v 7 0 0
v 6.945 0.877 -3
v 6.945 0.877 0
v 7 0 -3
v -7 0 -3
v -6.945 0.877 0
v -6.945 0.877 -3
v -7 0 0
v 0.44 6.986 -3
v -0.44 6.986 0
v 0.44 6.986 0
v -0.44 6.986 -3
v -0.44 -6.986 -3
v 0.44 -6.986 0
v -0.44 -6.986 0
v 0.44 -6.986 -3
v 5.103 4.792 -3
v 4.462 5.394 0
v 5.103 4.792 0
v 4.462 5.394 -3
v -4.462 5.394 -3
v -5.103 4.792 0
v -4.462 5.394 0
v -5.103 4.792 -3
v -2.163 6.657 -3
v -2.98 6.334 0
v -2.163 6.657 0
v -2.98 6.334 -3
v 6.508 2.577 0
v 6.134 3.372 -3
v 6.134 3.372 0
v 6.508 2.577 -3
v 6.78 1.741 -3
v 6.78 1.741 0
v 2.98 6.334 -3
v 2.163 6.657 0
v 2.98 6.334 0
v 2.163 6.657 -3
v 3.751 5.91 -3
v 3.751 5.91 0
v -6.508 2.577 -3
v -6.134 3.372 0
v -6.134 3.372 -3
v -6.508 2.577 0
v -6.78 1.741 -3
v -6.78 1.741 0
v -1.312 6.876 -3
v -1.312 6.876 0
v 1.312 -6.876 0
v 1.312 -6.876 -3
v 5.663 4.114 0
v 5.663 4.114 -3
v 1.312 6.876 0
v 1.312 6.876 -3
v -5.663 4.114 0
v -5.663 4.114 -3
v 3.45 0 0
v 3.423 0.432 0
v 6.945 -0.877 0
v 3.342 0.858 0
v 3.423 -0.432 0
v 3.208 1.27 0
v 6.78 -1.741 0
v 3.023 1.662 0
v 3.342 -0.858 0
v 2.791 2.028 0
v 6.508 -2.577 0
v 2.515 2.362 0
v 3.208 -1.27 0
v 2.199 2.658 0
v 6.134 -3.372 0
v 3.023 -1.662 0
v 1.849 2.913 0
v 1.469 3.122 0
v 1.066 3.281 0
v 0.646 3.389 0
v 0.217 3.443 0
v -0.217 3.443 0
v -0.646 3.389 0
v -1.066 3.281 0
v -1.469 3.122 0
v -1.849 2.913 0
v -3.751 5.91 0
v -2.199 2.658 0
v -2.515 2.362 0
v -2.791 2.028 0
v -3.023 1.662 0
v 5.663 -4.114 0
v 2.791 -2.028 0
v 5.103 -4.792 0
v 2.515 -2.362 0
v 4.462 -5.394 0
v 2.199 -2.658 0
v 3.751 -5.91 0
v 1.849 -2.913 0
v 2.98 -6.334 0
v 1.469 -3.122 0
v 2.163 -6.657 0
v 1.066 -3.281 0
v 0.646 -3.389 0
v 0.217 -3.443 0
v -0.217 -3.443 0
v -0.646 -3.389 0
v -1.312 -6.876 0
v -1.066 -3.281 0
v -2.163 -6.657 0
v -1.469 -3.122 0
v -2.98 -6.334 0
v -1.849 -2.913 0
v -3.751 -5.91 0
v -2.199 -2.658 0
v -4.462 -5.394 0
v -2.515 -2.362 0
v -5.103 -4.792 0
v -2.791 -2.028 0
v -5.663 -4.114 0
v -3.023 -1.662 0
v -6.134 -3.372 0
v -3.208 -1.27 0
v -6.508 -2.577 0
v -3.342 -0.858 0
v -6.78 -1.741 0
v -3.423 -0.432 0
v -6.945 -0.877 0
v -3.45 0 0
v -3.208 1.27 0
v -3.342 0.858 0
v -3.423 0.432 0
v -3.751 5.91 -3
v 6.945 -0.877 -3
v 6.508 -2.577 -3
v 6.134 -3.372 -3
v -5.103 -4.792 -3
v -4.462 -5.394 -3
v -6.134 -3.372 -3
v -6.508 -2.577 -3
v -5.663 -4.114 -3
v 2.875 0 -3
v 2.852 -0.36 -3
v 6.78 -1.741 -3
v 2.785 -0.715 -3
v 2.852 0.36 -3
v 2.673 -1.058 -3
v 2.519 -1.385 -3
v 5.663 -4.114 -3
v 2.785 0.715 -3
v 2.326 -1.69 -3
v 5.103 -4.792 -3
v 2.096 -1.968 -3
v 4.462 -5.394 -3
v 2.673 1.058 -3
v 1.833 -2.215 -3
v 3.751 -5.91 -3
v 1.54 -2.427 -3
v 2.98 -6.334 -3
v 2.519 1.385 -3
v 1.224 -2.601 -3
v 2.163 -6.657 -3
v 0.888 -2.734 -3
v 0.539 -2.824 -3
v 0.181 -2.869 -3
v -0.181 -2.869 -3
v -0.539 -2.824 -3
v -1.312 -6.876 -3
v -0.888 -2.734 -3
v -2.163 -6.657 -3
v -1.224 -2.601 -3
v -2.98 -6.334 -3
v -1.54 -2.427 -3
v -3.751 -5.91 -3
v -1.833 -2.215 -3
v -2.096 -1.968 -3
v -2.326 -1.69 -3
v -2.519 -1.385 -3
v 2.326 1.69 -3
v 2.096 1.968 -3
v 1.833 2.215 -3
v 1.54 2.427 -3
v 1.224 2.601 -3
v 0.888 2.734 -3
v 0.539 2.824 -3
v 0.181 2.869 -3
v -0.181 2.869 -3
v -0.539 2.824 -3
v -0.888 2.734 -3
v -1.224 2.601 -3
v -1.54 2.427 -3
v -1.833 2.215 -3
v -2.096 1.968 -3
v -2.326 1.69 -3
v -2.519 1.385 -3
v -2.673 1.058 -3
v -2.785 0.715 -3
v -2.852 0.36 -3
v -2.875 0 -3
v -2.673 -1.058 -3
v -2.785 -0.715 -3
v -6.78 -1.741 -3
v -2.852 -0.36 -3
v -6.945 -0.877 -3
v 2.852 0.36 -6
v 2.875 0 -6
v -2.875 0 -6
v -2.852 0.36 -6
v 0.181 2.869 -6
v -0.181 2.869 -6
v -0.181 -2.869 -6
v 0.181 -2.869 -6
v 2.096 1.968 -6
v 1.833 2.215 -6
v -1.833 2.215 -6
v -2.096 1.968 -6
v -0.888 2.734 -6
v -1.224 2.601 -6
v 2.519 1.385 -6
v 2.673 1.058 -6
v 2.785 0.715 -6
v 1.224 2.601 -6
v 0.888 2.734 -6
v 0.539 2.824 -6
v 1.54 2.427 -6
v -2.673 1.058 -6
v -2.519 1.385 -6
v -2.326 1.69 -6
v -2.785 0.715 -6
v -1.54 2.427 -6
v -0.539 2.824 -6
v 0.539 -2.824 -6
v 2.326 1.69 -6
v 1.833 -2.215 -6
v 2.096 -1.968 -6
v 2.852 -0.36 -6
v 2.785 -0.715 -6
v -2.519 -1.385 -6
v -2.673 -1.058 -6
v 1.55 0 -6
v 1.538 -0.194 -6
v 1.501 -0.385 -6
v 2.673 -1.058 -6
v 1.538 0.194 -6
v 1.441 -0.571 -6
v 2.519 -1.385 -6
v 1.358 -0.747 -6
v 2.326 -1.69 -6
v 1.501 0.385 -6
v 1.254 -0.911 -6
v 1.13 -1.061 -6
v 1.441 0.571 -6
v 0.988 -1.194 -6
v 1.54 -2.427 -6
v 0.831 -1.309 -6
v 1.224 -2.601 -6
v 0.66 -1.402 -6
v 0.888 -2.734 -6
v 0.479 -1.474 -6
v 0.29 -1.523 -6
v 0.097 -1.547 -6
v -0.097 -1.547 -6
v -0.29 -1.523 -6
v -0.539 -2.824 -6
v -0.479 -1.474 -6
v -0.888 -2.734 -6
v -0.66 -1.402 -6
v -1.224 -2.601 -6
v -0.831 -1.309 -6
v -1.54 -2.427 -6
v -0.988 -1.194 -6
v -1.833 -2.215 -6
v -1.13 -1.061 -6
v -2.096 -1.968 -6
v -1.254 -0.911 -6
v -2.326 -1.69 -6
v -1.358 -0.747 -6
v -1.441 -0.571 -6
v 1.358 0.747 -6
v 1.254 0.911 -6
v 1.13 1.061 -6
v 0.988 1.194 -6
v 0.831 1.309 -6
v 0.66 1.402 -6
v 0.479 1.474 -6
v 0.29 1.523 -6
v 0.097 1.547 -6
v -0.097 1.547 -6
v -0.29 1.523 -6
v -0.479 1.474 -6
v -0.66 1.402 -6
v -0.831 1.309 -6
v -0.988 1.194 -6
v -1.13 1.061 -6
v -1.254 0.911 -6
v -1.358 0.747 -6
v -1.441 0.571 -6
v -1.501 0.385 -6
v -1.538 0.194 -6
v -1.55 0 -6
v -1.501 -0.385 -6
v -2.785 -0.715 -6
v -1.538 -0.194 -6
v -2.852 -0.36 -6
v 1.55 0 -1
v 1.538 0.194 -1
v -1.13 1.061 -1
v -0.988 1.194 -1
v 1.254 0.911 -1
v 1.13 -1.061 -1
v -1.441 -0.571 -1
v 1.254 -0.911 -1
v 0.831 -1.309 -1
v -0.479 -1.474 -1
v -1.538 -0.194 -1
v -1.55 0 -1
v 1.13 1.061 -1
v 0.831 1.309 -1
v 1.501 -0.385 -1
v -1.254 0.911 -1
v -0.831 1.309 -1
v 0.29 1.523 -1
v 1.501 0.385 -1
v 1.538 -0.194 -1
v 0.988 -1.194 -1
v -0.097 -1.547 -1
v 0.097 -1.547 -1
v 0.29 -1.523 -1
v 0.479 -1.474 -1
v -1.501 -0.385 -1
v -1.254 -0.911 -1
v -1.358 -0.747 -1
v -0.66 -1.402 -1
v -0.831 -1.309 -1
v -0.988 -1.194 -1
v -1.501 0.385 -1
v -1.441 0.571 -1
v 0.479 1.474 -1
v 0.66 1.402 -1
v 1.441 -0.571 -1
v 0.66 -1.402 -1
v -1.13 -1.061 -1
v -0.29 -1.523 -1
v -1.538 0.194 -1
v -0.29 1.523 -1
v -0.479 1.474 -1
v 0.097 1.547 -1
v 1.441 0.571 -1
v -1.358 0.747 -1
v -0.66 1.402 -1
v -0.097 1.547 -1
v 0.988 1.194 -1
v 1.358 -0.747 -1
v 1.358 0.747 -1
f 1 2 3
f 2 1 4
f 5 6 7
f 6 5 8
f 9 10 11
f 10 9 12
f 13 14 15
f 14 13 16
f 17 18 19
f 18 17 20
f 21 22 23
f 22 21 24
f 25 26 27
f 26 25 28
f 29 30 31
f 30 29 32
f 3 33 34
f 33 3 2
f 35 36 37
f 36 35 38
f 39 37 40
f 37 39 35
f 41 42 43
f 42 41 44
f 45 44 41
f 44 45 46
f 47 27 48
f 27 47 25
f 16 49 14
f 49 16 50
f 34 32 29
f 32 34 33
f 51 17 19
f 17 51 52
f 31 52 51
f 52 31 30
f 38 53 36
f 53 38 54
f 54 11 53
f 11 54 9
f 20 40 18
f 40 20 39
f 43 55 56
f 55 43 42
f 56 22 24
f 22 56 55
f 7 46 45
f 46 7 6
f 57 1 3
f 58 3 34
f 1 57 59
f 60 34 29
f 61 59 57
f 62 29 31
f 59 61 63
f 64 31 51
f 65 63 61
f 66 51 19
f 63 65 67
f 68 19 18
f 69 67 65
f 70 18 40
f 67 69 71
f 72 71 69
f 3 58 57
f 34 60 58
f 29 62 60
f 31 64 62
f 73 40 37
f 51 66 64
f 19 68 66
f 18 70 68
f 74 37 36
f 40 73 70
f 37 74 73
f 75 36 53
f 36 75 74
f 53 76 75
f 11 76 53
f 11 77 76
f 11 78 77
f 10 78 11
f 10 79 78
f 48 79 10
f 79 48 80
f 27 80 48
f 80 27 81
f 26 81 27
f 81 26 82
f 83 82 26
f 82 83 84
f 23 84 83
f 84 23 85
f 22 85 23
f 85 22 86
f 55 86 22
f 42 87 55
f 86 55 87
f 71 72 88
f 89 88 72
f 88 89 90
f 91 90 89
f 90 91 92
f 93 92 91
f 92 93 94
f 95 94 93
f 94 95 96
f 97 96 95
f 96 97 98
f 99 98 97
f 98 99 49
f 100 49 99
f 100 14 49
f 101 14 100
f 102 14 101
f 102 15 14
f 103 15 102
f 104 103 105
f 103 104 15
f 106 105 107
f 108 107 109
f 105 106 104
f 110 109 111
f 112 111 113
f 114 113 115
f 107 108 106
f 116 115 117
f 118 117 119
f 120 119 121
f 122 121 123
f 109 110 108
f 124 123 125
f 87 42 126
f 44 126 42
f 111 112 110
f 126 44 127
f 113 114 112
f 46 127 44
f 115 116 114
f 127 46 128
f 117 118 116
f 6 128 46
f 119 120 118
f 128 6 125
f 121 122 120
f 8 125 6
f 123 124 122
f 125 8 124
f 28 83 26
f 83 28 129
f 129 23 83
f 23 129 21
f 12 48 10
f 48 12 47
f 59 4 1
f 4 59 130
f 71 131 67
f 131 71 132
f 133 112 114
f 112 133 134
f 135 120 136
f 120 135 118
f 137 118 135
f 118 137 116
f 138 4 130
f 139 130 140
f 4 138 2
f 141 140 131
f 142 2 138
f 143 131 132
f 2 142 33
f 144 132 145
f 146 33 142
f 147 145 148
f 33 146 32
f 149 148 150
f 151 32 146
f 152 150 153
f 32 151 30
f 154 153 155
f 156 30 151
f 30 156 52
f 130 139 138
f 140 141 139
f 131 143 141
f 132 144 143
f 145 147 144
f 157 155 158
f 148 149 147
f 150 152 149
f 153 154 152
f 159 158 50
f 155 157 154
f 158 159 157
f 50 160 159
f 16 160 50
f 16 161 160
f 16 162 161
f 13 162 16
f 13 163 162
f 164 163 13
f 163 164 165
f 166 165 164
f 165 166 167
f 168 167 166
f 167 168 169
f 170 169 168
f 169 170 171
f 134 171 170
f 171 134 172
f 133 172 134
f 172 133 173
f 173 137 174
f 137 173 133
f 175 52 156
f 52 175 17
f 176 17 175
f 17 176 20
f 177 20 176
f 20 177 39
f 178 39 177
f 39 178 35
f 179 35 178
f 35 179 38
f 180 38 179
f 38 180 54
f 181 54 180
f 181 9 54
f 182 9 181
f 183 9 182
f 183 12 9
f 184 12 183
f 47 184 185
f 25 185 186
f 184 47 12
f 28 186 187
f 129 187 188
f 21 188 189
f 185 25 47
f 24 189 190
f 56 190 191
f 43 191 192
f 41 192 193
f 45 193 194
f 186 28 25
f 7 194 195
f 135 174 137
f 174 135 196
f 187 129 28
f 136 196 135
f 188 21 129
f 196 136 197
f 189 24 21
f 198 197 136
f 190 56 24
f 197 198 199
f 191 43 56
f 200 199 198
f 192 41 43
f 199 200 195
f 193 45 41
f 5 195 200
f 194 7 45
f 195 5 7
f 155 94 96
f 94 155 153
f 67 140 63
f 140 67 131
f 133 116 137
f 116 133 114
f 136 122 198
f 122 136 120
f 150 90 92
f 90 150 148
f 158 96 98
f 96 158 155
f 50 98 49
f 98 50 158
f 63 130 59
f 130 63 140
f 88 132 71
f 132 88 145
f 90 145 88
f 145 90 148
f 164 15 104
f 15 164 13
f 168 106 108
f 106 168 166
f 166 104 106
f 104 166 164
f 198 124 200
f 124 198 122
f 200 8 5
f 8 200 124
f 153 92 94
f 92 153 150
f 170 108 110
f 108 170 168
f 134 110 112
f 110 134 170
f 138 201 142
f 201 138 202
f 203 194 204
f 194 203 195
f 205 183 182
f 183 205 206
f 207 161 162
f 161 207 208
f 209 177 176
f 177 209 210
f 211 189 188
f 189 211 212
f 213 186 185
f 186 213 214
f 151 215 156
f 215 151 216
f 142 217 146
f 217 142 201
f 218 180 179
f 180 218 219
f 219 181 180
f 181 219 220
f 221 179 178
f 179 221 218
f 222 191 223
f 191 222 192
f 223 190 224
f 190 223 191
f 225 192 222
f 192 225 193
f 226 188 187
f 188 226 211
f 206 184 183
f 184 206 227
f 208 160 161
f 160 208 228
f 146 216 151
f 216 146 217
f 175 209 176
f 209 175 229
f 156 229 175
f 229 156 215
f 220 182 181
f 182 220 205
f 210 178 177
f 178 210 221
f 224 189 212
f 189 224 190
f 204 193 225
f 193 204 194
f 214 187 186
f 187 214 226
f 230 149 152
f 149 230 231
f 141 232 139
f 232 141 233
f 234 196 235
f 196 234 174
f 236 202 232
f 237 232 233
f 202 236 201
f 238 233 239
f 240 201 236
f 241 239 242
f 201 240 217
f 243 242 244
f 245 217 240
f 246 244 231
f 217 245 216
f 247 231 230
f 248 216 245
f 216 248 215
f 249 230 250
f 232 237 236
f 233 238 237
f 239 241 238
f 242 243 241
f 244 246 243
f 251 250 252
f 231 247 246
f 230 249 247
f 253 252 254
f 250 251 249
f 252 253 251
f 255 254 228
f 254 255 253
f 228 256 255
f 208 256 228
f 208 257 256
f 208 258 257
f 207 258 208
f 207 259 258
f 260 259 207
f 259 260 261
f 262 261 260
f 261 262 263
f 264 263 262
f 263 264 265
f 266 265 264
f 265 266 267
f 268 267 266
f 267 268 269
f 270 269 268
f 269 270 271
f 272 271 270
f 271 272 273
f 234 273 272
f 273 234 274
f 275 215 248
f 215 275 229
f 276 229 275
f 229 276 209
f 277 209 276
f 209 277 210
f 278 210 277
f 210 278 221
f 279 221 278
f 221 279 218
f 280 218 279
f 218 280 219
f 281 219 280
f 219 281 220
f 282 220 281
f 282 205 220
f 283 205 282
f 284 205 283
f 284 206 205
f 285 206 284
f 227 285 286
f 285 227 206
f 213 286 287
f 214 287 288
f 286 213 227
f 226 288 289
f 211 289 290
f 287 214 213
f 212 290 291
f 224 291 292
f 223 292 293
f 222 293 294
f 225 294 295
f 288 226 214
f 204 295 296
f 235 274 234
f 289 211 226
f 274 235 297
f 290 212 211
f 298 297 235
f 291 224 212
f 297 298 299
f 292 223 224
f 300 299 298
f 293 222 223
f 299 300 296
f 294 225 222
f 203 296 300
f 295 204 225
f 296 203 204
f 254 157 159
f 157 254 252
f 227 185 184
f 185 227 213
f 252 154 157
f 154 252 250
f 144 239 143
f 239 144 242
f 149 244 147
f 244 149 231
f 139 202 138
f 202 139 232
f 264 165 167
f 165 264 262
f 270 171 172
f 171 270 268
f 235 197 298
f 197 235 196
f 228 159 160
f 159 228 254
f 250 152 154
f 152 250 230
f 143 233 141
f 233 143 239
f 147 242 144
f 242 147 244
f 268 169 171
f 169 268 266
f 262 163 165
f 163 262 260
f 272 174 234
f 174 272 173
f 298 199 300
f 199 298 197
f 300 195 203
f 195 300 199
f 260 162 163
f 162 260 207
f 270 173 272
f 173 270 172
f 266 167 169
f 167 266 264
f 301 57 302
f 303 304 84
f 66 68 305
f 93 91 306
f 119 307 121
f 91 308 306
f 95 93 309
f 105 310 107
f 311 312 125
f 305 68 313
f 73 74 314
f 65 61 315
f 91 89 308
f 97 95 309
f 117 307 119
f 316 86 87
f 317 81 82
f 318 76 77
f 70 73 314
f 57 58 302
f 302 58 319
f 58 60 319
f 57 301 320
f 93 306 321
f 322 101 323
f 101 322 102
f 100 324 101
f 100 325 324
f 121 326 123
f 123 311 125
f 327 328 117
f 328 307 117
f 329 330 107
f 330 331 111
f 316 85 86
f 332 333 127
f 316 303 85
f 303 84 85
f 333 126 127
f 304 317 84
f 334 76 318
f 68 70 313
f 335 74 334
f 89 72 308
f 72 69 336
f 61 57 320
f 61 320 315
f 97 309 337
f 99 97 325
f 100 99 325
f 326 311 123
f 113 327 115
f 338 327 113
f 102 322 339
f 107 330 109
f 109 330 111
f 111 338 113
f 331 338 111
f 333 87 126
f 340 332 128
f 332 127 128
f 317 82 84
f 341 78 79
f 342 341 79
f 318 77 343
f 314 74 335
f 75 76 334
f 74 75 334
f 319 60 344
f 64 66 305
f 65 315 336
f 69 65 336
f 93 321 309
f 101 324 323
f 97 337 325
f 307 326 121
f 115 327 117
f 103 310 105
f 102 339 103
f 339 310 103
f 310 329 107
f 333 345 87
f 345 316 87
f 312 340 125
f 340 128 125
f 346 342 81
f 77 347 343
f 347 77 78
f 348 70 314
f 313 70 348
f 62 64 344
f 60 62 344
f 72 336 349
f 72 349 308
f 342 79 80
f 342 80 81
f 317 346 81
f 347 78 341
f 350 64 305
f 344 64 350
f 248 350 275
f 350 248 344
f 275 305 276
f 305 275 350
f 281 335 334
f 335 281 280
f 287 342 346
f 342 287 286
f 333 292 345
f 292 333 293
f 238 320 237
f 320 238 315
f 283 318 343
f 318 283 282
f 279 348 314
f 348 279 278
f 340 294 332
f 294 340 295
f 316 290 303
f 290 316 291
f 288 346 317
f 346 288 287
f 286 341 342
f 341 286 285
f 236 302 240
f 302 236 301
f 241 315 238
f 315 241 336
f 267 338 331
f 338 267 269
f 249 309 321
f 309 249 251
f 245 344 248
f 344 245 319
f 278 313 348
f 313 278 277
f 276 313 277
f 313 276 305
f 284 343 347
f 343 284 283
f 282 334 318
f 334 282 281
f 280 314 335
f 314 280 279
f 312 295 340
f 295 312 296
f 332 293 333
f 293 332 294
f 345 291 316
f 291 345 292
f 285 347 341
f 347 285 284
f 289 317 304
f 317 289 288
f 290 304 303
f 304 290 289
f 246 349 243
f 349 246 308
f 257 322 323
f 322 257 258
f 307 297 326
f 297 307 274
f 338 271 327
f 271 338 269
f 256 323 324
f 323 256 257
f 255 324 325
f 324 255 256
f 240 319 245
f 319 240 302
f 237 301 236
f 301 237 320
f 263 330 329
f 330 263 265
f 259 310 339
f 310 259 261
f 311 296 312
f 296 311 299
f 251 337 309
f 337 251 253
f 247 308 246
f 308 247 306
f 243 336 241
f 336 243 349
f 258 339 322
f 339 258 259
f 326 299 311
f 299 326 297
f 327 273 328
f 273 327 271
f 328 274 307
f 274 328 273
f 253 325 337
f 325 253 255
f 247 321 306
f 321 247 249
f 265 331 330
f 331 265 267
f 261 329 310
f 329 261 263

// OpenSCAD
$fn = 50;


difference() {
	union() {
		translate(v = [0, 0, -3.0000000000]) {
			cylinder(h = 3, r = 7.0000000000);
		}
		translate(v = [0, 0, -6.0000000000]) {
			cylinder(h = 6, r = 2.8750000000);
		}
	}
	union() {
		translate(v = [0, 0, 0]) {
			rotate(a = [0, 0, 0]) {
				difference() {
					union() {
						translate(v = [0, 0, -6.0000000000]) {
							cylinder(h = 6, r = 1.2500000000);
						}
						translate(v = [0, 0, -1.0000000000]) {
							cylinder(h = 1.0000000000, r1 = 1.5500000000, r2 = 3.4500000000);
						}
						translate(v = [0, 0, -6.0000000000]) {
							cylinder(h = 6, r = 1.5500000000);
						}
						translate(v = [0, 0, -6.0000000000]) {
							cylinder(h = 6, r = 1.2500000000);
						}
					}
					union();
				}
			}
		}
	}
}
